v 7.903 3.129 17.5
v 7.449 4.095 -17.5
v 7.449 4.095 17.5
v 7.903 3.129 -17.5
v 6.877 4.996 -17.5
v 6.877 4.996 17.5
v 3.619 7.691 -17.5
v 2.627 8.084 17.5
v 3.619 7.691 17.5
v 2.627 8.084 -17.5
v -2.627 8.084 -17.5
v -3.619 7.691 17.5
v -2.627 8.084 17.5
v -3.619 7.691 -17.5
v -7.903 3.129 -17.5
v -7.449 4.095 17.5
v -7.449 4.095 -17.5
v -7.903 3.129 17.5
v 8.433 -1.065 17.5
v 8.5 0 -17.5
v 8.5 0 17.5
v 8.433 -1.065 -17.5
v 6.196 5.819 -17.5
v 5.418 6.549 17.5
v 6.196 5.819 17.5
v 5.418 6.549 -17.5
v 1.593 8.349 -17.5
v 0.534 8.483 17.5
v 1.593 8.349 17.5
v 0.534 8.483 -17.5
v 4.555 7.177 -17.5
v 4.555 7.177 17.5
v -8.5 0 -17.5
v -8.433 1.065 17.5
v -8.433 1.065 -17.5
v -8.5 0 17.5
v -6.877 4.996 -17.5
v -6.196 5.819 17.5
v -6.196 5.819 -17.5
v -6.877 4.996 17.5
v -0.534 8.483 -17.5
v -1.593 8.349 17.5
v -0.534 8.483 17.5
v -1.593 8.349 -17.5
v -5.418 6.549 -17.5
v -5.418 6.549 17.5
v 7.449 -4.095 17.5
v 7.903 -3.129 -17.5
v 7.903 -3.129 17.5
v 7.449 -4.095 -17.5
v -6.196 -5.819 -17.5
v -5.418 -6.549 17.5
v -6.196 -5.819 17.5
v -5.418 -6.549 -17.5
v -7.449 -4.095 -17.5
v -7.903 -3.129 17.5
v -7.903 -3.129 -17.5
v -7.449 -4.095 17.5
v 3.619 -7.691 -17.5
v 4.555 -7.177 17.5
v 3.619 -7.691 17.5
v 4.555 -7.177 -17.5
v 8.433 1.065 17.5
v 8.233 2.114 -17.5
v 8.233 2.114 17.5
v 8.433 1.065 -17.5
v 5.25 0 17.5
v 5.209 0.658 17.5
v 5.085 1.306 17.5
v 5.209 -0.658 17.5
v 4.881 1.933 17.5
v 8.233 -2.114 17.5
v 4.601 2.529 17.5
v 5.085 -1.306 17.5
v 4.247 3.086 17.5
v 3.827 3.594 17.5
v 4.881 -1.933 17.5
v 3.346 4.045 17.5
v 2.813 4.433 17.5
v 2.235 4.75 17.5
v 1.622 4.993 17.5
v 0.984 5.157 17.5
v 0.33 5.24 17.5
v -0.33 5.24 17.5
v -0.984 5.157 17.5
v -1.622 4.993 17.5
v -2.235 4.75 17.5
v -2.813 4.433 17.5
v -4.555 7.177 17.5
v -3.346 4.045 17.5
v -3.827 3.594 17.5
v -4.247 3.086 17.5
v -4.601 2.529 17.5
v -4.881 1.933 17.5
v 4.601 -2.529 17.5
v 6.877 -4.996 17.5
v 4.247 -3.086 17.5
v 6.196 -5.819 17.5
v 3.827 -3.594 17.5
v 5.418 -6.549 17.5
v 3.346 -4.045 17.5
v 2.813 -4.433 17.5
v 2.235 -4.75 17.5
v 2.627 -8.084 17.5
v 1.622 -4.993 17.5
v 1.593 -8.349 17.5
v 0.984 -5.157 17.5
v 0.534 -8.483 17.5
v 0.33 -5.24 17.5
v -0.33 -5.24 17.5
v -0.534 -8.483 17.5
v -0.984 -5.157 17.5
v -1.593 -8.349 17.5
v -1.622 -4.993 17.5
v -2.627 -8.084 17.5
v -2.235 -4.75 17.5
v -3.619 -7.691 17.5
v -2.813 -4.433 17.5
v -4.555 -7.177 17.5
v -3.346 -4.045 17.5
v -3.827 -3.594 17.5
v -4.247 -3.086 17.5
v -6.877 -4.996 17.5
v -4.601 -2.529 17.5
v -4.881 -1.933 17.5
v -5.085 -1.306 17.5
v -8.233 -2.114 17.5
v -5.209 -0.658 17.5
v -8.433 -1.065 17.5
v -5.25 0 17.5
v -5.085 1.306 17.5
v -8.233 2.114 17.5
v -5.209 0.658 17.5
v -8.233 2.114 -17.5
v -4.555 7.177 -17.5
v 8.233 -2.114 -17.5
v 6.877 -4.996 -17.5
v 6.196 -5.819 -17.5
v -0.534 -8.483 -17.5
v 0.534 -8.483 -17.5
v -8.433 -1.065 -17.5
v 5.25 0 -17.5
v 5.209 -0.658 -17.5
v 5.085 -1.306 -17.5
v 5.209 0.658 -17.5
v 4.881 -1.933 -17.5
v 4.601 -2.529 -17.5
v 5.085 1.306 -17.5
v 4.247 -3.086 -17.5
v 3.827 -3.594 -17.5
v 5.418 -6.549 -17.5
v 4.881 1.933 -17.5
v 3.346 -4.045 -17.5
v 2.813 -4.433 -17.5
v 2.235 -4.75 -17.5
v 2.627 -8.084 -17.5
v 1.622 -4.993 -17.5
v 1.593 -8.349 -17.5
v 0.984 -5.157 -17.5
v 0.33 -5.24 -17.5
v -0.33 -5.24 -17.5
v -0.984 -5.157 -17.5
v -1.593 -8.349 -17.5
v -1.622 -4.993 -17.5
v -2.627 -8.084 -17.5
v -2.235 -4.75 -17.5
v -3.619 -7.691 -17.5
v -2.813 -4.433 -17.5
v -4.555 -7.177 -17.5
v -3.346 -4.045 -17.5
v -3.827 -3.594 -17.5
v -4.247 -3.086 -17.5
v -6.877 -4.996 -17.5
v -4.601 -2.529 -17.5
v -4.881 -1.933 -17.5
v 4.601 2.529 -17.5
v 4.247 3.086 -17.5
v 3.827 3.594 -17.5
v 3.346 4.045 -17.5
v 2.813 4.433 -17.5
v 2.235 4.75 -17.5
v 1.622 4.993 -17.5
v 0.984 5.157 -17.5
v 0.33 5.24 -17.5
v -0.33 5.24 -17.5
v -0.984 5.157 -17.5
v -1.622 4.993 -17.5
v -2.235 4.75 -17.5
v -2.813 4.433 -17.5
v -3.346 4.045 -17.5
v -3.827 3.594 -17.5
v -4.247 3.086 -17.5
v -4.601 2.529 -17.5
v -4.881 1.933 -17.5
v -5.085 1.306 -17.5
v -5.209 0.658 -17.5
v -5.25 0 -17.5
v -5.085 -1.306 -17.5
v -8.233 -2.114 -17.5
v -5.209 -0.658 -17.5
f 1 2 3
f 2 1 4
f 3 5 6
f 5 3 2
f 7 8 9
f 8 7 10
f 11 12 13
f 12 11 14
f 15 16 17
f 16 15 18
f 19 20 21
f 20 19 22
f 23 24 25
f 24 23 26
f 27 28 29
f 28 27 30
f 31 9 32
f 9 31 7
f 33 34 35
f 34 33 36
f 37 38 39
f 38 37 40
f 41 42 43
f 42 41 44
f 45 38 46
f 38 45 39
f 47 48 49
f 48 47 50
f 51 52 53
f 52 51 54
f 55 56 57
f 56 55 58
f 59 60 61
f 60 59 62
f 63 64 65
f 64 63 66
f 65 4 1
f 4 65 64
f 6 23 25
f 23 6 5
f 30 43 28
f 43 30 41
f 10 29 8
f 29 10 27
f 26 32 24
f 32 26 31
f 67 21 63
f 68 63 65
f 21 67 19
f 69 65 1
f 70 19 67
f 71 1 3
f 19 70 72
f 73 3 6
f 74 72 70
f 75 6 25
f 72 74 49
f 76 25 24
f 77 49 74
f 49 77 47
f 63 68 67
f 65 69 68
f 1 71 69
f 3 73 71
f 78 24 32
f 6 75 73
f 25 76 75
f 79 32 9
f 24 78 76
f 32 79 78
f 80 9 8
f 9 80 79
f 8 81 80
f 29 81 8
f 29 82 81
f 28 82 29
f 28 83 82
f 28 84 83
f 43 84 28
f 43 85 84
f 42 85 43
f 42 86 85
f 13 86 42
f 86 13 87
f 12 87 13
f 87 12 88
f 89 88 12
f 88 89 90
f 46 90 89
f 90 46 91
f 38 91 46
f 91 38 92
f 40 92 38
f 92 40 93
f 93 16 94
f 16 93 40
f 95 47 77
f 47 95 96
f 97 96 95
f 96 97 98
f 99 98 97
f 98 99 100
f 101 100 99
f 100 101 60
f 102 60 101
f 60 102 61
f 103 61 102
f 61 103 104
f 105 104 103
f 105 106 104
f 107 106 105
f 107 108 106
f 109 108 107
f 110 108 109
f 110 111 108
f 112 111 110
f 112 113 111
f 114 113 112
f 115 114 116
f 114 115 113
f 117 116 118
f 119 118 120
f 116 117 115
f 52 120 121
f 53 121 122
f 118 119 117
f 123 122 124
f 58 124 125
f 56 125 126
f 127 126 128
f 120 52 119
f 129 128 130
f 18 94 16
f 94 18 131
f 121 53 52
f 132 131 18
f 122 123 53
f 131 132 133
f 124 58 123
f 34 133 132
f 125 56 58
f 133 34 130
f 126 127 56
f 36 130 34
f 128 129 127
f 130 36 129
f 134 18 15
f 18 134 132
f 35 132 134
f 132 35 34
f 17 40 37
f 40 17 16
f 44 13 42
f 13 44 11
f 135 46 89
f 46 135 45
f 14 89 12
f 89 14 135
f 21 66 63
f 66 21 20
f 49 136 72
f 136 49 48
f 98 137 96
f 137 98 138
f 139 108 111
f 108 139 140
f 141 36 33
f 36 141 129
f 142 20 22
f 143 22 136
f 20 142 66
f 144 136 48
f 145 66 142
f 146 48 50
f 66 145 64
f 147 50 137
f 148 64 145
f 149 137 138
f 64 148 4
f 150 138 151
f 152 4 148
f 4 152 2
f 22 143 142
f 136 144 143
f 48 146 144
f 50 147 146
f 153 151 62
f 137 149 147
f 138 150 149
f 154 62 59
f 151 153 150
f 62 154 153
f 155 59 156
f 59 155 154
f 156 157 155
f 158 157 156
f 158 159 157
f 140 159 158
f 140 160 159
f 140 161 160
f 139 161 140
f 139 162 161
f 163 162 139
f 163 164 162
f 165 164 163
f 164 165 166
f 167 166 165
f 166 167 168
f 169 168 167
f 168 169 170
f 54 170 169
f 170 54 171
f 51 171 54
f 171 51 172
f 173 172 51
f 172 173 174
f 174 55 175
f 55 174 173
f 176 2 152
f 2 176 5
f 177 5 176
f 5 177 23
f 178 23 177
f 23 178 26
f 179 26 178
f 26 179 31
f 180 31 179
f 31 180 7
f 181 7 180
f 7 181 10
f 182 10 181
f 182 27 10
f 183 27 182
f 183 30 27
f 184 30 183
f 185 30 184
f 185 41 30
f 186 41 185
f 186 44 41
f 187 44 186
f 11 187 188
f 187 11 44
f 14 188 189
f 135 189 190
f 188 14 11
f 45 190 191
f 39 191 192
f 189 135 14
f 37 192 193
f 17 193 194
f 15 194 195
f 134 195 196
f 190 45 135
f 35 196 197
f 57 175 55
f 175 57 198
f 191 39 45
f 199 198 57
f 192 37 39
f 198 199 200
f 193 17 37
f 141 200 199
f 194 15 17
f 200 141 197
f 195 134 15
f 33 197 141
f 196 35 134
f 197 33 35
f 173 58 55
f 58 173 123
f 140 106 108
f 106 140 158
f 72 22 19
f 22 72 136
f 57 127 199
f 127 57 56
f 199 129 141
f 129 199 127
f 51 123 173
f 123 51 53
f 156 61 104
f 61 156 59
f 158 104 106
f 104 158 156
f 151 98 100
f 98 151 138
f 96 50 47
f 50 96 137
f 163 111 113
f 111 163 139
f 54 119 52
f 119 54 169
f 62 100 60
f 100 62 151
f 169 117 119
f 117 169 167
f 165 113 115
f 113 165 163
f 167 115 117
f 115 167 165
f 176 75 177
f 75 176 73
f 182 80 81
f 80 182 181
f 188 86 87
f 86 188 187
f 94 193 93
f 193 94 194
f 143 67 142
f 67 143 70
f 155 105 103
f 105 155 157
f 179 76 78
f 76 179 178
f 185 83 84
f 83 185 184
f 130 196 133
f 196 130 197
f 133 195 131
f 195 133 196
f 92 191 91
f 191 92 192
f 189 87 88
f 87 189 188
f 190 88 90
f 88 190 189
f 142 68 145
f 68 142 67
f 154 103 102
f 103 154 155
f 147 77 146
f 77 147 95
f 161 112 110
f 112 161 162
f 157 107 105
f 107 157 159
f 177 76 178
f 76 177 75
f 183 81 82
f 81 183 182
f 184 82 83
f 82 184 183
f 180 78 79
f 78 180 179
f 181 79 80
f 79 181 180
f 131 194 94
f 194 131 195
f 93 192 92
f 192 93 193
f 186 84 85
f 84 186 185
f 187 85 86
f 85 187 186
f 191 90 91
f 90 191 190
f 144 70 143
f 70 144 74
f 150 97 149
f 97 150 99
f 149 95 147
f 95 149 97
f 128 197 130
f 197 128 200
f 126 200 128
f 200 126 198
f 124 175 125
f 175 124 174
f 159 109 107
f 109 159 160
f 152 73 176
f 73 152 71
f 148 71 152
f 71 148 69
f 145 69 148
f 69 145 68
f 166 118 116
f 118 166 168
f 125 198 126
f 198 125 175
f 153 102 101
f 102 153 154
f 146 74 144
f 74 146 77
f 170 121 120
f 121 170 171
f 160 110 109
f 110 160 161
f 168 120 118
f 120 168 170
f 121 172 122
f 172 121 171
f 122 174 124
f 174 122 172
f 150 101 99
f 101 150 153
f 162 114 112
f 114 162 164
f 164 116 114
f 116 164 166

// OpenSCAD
$fn = 50;


difference() {
	union() {
		translate(v = [0, 0, -17.5000000000]) {
			cylinder(h = 35, r = 8.5000000000);
		}
	}
	union() {
		translate(v = [0, 0, -100.0000000000]) {
			cylinder(h = 200, r = 5.2500000000);
		}
	}
}
